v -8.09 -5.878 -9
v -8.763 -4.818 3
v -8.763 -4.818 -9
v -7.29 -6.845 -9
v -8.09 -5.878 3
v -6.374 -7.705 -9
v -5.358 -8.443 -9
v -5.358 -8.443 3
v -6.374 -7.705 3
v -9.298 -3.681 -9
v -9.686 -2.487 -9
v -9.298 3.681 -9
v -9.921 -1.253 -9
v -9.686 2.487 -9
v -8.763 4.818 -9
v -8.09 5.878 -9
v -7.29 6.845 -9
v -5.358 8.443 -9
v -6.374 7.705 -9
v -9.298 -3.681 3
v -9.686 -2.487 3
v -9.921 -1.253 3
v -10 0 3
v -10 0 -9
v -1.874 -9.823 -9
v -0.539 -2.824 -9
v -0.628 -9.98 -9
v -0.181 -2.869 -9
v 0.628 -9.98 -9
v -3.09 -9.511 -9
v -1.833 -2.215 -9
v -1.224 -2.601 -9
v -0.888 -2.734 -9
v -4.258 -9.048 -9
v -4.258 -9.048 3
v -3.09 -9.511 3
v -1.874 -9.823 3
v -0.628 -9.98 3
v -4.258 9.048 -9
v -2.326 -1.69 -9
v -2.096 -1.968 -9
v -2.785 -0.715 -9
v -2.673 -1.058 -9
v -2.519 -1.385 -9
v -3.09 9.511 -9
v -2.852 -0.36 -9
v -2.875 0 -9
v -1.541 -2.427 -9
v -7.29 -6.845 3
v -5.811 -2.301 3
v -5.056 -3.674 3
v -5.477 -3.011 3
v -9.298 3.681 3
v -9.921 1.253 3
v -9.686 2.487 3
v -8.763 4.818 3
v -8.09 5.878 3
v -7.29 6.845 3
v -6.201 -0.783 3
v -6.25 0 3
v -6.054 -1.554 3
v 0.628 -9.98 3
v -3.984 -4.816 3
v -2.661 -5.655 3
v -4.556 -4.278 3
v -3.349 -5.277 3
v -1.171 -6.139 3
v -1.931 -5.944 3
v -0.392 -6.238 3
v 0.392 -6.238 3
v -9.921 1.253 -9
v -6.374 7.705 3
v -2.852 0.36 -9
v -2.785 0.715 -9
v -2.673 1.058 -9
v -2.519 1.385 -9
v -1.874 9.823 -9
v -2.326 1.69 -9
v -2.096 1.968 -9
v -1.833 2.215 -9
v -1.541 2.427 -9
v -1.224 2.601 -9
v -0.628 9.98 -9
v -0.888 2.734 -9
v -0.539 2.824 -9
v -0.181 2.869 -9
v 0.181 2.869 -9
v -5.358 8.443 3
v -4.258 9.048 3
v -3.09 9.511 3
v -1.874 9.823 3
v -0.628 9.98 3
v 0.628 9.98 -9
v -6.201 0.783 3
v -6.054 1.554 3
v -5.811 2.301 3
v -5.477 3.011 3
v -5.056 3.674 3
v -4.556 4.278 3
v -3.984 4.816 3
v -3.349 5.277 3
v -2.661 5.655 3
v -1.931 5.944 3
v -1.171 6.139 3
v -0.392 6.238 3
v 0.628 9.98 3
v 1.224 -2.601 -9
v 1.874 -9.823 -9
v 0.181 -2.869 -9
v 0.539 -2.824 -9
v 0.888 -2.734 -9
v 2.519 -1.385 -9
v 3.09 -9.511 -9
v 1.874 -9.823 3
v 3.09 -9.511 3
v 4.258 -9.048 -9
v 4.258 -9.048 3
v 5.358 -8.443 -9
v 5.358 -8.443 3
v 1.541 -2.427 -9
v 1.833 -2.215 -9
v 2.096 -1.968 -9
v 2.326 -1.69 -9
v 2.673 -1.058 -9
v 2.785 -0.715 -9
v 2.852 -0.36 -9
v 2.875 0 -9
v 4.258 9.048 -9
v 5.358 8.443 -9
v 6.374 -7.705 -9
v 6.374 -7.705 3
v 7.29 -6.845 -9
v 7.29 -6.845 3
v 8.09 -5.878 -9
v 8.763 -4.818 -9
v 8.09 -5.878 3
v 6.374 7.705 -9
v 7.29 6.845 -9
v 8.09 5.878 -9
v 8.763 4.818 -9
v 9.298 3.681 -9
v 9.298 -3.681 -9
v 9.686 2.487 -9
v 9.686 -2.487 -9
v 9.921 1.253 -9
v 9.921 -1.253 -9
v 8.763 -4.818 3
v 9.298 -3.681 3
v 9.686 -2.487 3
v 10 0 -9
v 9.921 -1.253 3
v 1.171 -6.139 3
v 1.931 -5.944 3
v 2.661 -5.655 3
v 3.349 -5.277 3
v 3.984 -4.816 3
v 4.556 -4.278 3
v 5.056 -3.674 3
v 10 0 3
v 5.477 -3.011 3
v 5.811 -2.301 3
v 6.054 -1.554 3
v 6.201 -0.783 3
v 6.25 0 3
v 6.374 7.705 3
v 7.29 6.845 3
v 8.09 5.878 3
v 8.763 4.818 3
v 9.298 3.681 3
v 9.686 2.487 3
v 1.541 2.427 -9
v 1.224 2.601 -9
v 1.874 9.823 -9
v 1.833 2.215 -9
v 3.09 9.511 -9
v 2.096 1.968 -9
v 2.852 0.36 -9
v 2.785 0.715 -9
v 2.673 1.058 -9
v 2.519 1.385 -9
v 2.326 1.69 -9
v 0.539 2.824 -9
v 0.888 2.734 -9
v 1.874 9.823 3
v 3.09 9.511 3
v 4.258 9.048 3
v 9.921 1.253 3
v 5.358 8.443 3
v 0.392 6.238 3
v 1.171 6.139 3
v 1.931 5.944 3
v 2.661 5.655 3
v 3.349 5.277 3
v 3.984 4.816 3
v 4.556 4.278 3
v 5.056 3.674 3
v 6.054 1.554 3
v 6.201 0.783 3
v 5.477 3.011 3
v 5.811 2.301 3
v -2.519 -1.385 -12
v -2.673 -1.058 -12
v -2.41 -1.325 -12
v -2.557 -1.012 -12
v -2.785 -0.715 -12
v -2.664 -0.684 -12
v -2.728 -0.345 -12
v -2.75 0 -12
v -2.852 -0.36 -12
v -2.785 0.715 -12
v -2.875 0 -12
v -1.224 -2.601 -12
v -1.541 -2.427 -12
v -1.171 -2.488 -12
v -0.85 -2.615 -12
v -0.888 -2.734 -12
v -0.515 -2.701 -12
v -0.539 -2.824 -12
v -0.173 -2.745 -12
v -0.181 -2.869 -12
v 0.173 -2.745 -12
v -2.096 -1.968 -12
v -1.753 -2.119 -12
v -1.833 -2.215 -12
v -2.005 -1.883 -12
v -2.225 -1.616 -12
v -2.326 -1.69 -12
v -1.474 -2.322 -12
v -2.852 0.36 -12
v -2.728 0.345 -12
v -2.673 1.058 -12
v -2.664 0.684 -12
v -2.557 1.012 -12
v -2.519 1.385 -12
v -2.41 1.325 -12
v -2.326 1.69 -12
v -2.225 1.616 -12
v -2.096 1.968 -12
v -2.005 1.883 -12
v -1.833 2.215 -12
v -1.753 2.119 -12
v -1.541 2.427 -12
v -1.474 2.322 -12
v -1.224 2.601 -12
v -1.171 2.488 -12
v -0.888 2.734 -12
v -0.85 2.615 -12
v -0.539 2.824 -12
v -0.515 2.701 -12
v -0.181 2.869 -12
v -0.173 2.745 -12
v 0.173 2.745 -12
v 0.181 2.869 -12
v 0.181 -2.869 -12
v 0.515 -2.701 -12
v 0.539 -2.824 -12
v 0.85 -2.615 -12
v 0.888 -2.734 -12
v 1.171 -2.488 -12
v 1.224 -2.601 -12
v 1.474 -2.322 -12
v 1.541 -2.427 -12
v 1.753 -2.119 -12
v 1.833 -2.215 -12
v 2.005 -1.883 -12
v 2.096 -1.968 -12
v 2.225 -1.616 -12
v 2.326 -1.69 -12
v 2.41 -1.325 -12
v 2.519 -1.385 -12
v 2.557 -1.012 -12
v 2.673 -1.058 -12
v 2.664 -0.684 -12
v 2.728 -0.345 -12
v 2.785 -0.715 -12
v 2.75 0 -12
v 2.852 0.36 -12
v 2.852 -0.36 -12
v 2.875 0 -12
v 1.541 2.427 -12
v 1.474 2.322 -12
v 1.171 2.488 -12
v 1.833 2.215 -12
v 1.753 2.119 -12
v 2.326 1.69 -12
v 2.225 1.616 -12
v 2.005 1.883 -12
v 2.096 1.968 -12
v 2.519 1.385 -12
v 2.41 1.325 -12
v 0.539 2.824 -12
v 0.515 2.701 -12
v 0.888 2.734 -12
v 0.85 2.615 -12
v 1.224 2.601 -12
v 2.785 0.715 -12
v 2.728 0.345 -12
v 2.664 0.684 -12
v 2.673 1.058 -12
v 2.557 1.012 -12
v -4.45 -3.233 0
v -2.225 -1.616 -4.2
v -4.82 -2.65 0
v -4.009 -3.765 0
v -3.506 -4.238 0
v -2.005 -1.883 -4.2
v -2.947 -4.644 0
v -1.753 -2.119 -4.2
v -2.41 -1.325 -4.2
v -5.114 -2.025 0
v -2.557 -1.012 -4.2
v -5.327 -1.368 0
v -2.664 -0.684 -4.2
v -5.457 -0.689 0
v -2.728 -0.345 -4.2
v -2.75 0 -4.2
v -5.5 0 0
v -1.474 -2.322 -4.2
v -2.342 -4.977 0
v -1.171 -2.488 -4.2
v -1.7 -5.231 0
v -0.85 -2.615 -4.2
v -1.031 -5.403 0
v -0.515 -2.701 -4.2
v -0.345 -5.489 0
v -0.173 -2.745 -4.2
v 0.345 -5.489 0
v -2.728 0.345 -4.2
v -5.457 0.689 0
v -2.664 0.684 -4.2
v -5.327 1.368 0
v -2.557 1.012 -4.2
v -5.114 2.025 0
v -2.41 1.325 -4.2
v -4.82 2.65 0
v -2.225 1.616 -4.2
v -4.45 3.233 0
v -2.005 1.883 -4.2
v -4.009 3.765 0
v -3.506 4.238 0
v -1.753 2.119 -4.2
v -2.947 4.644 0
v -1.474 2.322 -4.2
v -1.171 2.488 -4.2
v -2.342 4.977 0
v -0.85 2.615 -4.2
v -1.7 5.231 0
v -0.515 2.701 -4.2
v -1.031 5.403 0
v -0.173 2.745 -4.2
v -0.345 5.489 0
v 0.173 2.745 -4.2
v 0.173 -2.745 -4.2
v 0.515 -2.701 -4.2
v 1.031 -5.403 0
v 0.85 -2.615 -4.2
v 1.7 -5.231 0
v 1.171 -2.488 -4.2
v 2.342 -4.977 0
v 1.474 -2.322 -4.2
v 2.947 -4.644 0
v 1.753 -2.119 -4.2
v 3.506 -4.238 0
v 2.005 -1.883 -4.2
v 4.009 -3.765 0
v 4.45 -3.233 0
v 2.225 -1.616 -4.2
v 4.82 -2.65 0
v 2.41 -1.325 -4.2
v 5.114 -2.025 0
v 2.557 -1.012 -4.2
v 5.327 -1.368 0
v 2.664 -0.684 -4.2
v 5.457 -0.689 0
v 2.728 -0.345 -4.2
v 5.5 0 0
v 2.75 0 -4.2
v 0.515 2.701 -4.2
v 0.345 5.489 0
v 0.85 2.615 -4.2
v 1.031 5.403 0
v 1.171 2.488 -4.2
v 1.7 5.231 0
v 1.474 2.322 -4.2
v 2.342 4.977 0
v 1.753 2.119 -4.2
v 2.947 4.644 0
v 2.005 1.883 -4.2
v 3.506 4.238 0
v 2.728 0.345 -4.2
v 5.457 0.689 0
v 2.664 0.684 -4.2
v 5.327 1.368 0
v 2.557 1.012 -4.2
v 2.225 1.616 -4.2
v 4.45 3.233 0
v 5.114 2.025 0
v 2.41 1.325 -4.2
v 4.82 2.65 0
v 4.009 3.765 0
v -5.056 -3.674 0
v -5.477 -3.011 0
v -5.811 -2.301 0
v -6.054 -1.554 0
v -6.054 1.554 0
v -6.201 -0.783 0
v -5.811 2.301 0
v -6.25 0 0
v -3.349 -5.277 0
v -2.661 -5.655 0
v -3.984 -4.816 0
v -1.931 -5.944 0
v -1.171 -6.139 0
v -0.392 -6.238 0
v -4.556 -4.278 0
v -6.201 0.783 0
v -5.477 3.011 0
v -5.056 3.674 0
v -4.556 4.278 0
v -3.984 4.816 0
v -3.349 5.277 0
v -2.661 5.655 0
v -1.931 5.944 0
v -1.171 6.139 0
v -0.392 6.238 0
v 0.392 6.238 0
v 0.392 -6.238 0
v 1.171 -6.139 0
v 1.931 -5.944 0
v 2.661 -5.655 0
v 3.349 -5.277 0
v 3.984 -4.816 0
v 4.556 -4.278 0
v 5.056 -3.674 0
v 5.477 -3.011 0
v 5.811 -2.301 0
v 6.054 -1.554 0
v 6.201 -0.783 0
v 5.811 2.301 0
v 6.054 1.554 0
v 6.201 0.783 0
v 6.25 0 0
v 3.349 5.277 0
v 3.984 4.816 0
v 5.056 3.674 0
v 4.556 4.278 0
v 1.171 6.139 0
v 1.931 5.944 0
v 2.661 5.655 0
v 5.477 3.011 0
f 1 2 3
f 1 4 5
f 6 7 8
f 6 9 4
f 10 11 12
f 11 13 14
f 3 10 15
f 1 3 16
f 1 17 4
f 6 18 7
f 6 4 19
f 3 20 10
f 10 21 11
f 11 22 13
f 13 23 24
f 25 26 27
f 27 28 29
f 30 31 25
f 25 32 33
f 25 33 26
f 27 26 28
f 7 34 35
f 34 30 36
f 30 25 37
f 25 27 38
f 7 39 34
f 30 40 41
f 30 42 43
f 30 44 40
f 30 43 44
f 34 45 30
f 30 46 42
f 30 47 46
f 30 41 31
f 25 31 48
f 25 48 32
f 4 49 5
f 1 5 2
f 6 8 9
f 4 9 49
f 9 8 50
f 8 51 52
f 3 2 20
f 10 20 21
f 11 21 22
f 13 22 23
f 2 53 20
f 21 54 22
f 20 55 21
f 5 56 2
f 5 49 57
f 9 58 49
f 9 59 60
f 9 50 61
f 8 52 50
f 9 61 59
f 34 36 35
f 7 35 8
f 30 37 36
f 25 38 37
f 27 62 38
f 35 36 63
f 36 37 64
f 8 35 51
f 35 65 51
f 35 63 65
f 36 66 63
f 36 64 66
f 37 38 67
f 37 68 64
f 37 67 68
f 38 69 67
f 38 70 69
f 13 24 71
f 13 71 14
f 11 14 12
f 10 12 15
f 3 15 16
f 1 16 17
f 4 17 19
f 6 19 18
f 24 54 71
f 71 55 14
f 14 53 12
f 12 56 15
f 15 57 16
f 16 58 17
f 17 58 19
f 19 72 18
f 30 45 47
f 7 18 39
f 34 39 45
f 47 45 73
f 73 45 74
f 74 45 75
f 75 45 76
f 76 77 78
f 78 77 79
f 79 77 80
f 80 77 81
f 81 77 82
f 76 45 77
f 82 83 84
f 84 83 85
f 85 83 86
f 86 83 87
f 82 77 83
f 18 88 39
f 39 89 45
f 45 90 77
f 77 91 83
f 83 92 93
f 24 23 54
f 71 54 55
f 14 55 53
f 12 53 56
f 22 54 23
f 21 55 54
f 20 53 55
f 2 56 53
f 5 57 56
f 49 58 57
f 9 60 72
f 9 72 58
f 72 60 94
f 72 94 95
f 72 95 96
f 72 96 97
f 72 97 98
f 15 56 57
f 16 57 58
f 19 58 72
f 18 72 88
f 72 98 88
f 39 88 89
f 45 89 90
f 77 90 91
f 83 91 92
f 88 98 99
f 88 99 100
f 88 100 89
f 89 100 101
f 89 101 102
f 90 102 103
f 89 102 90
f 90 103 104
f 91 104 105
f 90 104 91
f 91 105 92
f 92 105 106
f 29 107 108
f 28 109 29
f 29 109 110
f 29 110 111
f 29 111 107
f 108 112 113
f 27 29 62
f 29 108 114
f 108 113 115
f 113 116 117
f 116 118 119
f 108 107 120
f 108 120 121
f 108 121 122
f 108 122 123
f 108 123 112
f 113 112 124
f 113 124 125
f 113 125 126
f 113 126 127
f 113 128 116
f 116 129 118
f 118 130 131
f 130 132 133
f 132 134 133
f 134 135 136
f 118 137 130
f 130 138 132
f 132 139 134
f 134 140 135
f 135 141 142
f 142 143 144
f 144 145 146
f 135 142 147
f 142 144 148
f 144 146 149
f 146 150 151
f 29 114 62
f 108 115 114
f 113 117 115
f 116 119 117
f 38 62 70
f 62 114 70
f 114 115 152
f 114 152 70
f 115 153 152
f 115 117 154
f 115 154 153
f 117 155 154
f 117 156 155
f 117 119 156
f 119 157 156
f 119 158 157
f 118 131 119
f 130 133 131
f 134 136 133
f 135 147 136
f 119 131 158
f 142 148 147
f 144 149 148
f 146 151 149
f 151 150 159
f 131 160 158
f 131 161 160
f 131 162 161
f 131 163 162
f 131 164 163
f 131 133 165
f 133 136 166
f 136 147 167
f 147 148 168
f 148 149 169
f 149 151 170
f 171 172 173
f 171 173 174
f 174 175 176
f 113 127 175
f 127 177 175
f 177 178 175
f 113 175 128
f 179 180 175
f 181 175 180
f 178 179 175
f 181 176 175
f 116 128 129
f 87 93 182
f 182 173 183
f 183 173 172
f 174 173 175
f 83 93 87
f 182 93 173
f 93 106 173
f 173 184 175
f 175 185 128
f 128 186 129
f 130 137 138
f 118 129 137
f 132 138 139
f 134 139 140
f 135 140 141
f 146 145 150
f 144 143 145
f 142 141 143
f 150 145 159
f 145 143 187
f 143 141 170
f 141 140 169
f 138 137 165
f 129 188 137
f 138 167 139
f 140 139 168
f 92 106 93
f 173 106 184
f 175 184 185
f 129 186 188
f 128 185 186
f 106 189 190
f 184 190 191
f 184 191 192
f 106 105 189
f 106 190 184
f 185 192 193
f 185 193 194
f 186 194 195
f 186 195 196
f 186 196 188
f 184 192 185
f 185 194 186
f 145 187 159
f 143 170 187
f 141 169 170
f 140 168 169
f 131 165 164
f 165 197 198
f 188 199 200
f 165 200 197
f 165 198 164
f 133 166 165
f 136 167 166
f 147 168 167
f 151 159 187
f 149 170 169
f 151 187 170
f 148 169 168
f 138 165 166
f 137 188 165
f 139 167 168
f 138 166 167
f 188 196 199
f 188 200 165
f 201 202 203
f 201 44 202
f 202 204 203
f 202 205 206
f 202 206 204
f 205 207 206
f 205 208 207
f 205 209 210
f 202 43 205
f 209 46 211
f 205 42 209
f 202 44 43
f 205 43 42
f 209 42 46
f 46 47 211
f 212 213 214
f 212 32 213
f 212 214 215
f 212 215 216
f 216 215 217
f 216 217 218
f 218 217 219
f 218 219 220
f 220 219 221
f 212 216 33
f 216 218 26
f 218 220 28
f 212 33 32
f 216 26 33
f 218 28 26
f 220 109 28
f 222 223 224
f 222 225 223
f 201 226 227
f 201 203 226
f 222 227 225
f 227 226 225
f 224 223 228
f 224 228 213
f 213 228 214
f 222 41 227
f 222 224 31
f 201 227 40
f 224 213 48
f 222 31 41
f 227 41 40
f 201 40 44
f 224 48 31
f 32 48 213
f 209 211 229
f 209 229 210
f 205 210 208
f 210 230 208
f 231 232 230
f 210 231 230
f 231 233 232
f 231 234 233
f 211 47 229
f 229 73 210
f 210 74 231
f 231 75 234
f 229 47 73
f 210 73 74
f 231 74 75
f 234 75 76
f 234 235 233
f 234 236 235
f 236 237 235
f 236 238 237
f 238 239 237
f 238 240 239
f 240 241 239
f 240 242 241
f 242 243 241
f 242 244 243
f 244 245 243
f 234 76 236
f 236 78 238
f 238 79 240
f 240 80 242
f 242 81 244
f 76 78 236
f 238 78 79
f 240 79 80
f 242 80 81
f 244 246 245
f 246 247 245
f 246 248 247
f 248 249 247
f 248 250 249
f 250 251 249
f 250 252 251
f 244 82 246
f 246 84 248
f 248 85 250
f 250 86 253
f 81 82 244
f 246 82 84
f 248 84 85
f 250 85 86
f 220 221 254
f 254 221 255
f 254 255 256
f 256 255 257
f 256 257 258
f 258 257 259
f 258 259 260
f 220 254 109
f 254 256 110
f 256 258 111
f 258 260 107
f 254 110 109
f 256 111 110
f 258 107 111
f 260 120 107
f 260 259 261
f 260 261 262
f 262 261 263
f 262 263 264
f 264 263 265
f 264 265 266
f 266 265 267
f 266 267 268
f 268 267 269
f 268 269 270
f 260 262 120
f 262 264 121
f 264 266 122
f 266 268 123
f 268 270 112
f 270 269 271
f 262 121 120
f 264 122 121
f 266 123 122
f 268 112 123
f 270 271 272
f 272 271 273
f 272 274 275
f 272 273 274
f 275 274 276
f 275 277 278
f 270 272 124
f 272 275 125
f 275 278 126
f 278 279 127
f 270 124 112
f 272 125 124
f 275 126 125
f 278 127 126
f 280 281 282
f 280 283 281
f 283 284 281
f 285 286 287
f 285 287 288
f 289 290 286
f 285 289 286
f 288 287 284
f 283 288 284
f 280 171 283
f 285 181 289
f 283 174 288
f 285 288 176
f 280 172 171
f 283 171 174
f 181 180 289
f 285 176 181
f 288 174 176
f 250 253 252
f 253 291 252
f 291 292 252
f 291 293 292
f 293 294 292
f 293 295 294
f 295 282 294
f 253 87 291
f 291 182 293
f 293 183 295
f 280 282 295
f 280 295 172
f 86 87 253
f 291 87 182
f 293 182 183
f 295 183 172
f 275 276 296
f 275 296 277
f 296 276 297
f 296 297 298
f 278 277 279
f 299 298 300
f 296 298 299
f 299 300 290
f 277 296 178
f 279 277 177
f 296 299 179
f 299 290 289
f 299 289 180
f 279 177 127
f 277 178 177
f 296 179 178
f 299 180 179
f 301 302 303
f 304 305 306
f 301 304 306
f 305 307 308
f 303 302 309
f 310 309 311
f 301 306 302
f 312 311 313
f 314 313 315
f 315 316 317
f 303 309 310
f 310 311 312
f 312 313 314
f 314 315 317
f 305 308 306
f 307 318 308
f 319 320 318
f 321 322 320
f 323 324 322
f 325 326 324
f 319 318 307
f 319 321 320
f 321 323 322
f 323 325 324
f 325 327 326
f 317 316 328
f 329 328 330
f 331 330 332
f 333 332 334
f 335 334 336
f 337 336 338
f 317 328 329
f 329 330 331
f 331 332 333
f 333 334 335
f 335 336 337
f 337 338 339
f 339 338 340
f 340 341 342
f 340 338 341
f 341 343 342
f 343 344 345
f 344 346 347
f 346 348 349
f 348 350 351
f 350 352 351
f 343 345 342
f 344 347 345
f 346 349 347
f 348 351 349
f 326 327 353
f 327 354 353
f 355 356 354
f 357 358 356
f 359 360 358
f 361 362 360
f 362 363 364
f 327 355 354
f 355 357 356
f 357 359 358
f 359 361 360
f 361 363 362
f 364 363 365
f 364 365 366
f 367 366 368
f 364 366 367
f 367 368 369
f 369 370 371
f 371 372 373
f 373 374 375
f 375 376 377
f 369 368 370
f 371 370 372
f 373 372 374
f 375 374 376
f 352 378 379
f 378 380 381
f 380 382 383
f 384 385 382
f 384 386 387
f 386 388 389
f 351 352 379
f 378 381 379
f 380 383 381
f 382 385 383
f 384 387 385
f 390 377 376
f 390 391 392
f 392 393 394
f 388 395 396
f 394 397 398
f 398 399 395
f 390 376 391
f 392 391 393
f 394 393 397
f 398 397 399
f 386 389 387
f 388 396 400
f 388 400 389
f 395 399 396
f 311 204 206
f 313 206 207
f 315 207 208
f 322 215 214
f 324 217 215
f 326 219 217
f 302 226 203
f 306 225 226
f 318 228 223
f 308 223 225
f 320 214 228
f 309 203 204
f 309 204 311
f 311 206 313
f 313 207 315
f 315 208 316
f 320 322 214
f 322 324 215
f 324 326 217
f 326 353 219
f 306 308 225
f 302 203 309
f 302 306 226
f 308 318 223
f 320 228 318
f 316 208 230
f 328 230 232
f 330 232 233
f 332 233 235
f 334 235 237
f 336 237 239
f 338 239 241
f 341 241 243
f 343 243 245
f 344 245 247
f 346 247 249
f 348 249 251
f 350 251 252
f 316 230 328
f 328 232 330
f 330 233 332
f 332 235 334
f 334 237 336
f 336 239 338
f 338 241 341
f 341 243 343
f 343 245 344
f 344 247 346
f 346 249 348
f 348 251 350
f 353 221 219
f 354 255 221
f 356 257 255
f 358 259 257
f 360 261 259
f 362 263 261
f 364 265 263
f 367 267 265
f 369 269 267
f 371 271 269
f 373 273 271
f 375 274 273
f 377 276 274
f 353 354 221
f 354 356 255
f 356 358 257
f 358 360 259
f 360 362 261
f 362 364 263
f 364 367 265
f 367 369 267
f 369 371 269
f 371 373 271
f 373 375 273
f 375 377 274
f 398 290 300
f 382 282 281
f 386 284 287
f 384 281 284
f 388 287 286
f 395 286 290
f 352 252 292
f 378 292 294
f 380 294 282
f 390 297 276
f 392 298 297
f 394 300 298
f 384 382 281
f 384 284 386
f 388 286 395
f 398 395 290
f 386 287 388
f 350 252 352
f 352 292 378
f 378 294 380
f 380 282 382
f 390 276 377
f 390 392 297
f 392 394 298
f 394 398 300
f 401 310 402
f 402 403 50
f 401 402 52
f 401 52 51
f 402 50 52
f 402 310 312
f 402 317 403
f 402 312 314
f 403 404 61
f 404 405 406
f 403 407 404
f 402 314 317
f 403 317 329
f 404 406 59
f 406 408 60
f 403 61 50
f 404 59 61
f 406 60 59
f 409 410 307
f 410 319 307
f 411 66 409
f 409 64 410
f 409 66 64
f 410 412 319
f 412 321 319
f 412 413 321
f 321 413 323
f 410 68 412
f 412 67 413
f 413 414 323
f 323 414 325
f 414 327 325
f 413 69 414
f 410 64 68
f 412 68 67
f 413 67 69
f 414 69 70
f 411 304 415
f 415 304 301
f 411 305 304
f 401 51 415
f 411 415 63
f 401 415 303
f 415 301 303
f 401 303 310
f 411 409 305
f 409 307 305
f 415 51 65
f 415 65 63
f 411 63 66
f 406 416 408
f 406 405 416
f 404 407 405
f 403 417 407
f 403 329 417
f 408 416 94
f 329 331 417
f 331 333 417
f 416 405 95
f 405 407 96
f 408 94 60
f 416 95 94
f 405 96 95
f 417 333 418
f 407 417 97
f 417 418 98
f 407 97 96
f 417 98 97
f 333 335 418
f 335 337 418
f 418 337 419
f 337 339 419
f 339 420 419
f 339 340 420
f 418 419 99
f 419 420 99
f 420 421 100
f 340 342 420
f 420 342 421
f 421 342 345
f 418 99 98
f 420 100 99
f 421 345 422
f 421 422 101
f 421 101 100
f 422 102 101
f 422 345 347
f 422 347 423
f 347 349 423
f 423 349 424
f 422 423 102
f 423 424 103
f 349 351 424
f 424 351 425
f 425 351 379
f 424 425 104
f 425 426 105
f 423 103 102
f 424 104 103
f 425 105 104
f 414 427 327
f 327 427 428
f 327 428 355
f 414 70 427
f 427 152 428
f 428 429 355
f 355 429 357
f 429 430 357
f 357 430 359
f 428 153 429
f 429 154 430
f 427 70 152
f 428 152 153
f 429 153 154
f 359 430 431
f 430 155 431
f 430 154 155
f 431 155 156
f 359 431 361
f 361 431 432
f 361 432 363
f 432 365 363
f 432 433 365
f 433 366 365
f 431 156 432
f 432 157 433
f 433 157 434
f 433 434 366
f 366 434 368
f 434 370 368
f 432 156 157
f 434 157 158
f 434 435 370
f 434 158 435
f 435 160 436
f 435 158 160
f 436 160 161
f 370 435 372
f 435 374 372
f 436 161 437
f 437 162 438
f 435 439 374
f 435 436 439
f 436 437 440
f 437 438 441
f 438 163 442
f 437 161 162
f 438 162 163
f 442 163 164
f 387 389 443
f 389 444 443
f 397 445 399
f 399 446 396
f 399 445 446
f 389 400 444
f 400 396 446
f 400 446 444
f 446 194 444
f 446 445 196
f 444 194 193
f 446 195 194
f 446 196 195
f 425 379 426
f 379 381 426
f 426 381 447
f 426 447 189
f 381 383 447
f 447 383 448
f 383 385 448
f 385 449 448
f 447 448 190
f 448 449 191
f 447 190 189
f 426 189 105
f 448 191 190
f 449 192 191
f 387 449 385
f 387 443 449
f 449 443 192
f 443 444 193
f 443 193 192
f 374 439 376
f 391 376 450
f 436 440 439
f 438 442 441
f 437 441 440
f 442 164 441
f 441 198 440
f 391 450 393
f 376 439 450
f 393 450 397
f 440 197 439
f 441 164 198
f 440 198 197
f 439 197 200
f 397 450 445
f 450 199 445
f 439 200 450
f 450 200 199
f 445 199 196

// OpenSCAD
$fn = 50;

difference() {
	union() {
		translate(v = [0, 0, -9.0]) {
			cylinder(h = 12, r = 10.0);
		}
		#translate(v = [0, 0, -12.0]) {
			cylinder(h = 12, r = 2.875);
		}
	}
	union() {
		translate(v = [0, 0, 0]) {
			rotate(a = [0, 0, 0]) {
				difference() {
					union() {
						translate(v = [0, 0, -12.0]) {
							cylinder(h = 12, r = 2.25);
						}
						translate(v = [0, 0, -4.2]) {
							cylinder(h = 4.2, r1 = 2.75, r2 = 5.5);
						}
						translate(v = [0, 0, -12.0]) {
							cylinder(h = 12, r = 2.75);
						}
						translate(v = [0, 0, -12.0]) {
							cylinder(h = 12, r = 2.25);
						}
					}
					union();
				}
			}
		}
		#cylinder(h = 3, r = 6.25);
	}
}
